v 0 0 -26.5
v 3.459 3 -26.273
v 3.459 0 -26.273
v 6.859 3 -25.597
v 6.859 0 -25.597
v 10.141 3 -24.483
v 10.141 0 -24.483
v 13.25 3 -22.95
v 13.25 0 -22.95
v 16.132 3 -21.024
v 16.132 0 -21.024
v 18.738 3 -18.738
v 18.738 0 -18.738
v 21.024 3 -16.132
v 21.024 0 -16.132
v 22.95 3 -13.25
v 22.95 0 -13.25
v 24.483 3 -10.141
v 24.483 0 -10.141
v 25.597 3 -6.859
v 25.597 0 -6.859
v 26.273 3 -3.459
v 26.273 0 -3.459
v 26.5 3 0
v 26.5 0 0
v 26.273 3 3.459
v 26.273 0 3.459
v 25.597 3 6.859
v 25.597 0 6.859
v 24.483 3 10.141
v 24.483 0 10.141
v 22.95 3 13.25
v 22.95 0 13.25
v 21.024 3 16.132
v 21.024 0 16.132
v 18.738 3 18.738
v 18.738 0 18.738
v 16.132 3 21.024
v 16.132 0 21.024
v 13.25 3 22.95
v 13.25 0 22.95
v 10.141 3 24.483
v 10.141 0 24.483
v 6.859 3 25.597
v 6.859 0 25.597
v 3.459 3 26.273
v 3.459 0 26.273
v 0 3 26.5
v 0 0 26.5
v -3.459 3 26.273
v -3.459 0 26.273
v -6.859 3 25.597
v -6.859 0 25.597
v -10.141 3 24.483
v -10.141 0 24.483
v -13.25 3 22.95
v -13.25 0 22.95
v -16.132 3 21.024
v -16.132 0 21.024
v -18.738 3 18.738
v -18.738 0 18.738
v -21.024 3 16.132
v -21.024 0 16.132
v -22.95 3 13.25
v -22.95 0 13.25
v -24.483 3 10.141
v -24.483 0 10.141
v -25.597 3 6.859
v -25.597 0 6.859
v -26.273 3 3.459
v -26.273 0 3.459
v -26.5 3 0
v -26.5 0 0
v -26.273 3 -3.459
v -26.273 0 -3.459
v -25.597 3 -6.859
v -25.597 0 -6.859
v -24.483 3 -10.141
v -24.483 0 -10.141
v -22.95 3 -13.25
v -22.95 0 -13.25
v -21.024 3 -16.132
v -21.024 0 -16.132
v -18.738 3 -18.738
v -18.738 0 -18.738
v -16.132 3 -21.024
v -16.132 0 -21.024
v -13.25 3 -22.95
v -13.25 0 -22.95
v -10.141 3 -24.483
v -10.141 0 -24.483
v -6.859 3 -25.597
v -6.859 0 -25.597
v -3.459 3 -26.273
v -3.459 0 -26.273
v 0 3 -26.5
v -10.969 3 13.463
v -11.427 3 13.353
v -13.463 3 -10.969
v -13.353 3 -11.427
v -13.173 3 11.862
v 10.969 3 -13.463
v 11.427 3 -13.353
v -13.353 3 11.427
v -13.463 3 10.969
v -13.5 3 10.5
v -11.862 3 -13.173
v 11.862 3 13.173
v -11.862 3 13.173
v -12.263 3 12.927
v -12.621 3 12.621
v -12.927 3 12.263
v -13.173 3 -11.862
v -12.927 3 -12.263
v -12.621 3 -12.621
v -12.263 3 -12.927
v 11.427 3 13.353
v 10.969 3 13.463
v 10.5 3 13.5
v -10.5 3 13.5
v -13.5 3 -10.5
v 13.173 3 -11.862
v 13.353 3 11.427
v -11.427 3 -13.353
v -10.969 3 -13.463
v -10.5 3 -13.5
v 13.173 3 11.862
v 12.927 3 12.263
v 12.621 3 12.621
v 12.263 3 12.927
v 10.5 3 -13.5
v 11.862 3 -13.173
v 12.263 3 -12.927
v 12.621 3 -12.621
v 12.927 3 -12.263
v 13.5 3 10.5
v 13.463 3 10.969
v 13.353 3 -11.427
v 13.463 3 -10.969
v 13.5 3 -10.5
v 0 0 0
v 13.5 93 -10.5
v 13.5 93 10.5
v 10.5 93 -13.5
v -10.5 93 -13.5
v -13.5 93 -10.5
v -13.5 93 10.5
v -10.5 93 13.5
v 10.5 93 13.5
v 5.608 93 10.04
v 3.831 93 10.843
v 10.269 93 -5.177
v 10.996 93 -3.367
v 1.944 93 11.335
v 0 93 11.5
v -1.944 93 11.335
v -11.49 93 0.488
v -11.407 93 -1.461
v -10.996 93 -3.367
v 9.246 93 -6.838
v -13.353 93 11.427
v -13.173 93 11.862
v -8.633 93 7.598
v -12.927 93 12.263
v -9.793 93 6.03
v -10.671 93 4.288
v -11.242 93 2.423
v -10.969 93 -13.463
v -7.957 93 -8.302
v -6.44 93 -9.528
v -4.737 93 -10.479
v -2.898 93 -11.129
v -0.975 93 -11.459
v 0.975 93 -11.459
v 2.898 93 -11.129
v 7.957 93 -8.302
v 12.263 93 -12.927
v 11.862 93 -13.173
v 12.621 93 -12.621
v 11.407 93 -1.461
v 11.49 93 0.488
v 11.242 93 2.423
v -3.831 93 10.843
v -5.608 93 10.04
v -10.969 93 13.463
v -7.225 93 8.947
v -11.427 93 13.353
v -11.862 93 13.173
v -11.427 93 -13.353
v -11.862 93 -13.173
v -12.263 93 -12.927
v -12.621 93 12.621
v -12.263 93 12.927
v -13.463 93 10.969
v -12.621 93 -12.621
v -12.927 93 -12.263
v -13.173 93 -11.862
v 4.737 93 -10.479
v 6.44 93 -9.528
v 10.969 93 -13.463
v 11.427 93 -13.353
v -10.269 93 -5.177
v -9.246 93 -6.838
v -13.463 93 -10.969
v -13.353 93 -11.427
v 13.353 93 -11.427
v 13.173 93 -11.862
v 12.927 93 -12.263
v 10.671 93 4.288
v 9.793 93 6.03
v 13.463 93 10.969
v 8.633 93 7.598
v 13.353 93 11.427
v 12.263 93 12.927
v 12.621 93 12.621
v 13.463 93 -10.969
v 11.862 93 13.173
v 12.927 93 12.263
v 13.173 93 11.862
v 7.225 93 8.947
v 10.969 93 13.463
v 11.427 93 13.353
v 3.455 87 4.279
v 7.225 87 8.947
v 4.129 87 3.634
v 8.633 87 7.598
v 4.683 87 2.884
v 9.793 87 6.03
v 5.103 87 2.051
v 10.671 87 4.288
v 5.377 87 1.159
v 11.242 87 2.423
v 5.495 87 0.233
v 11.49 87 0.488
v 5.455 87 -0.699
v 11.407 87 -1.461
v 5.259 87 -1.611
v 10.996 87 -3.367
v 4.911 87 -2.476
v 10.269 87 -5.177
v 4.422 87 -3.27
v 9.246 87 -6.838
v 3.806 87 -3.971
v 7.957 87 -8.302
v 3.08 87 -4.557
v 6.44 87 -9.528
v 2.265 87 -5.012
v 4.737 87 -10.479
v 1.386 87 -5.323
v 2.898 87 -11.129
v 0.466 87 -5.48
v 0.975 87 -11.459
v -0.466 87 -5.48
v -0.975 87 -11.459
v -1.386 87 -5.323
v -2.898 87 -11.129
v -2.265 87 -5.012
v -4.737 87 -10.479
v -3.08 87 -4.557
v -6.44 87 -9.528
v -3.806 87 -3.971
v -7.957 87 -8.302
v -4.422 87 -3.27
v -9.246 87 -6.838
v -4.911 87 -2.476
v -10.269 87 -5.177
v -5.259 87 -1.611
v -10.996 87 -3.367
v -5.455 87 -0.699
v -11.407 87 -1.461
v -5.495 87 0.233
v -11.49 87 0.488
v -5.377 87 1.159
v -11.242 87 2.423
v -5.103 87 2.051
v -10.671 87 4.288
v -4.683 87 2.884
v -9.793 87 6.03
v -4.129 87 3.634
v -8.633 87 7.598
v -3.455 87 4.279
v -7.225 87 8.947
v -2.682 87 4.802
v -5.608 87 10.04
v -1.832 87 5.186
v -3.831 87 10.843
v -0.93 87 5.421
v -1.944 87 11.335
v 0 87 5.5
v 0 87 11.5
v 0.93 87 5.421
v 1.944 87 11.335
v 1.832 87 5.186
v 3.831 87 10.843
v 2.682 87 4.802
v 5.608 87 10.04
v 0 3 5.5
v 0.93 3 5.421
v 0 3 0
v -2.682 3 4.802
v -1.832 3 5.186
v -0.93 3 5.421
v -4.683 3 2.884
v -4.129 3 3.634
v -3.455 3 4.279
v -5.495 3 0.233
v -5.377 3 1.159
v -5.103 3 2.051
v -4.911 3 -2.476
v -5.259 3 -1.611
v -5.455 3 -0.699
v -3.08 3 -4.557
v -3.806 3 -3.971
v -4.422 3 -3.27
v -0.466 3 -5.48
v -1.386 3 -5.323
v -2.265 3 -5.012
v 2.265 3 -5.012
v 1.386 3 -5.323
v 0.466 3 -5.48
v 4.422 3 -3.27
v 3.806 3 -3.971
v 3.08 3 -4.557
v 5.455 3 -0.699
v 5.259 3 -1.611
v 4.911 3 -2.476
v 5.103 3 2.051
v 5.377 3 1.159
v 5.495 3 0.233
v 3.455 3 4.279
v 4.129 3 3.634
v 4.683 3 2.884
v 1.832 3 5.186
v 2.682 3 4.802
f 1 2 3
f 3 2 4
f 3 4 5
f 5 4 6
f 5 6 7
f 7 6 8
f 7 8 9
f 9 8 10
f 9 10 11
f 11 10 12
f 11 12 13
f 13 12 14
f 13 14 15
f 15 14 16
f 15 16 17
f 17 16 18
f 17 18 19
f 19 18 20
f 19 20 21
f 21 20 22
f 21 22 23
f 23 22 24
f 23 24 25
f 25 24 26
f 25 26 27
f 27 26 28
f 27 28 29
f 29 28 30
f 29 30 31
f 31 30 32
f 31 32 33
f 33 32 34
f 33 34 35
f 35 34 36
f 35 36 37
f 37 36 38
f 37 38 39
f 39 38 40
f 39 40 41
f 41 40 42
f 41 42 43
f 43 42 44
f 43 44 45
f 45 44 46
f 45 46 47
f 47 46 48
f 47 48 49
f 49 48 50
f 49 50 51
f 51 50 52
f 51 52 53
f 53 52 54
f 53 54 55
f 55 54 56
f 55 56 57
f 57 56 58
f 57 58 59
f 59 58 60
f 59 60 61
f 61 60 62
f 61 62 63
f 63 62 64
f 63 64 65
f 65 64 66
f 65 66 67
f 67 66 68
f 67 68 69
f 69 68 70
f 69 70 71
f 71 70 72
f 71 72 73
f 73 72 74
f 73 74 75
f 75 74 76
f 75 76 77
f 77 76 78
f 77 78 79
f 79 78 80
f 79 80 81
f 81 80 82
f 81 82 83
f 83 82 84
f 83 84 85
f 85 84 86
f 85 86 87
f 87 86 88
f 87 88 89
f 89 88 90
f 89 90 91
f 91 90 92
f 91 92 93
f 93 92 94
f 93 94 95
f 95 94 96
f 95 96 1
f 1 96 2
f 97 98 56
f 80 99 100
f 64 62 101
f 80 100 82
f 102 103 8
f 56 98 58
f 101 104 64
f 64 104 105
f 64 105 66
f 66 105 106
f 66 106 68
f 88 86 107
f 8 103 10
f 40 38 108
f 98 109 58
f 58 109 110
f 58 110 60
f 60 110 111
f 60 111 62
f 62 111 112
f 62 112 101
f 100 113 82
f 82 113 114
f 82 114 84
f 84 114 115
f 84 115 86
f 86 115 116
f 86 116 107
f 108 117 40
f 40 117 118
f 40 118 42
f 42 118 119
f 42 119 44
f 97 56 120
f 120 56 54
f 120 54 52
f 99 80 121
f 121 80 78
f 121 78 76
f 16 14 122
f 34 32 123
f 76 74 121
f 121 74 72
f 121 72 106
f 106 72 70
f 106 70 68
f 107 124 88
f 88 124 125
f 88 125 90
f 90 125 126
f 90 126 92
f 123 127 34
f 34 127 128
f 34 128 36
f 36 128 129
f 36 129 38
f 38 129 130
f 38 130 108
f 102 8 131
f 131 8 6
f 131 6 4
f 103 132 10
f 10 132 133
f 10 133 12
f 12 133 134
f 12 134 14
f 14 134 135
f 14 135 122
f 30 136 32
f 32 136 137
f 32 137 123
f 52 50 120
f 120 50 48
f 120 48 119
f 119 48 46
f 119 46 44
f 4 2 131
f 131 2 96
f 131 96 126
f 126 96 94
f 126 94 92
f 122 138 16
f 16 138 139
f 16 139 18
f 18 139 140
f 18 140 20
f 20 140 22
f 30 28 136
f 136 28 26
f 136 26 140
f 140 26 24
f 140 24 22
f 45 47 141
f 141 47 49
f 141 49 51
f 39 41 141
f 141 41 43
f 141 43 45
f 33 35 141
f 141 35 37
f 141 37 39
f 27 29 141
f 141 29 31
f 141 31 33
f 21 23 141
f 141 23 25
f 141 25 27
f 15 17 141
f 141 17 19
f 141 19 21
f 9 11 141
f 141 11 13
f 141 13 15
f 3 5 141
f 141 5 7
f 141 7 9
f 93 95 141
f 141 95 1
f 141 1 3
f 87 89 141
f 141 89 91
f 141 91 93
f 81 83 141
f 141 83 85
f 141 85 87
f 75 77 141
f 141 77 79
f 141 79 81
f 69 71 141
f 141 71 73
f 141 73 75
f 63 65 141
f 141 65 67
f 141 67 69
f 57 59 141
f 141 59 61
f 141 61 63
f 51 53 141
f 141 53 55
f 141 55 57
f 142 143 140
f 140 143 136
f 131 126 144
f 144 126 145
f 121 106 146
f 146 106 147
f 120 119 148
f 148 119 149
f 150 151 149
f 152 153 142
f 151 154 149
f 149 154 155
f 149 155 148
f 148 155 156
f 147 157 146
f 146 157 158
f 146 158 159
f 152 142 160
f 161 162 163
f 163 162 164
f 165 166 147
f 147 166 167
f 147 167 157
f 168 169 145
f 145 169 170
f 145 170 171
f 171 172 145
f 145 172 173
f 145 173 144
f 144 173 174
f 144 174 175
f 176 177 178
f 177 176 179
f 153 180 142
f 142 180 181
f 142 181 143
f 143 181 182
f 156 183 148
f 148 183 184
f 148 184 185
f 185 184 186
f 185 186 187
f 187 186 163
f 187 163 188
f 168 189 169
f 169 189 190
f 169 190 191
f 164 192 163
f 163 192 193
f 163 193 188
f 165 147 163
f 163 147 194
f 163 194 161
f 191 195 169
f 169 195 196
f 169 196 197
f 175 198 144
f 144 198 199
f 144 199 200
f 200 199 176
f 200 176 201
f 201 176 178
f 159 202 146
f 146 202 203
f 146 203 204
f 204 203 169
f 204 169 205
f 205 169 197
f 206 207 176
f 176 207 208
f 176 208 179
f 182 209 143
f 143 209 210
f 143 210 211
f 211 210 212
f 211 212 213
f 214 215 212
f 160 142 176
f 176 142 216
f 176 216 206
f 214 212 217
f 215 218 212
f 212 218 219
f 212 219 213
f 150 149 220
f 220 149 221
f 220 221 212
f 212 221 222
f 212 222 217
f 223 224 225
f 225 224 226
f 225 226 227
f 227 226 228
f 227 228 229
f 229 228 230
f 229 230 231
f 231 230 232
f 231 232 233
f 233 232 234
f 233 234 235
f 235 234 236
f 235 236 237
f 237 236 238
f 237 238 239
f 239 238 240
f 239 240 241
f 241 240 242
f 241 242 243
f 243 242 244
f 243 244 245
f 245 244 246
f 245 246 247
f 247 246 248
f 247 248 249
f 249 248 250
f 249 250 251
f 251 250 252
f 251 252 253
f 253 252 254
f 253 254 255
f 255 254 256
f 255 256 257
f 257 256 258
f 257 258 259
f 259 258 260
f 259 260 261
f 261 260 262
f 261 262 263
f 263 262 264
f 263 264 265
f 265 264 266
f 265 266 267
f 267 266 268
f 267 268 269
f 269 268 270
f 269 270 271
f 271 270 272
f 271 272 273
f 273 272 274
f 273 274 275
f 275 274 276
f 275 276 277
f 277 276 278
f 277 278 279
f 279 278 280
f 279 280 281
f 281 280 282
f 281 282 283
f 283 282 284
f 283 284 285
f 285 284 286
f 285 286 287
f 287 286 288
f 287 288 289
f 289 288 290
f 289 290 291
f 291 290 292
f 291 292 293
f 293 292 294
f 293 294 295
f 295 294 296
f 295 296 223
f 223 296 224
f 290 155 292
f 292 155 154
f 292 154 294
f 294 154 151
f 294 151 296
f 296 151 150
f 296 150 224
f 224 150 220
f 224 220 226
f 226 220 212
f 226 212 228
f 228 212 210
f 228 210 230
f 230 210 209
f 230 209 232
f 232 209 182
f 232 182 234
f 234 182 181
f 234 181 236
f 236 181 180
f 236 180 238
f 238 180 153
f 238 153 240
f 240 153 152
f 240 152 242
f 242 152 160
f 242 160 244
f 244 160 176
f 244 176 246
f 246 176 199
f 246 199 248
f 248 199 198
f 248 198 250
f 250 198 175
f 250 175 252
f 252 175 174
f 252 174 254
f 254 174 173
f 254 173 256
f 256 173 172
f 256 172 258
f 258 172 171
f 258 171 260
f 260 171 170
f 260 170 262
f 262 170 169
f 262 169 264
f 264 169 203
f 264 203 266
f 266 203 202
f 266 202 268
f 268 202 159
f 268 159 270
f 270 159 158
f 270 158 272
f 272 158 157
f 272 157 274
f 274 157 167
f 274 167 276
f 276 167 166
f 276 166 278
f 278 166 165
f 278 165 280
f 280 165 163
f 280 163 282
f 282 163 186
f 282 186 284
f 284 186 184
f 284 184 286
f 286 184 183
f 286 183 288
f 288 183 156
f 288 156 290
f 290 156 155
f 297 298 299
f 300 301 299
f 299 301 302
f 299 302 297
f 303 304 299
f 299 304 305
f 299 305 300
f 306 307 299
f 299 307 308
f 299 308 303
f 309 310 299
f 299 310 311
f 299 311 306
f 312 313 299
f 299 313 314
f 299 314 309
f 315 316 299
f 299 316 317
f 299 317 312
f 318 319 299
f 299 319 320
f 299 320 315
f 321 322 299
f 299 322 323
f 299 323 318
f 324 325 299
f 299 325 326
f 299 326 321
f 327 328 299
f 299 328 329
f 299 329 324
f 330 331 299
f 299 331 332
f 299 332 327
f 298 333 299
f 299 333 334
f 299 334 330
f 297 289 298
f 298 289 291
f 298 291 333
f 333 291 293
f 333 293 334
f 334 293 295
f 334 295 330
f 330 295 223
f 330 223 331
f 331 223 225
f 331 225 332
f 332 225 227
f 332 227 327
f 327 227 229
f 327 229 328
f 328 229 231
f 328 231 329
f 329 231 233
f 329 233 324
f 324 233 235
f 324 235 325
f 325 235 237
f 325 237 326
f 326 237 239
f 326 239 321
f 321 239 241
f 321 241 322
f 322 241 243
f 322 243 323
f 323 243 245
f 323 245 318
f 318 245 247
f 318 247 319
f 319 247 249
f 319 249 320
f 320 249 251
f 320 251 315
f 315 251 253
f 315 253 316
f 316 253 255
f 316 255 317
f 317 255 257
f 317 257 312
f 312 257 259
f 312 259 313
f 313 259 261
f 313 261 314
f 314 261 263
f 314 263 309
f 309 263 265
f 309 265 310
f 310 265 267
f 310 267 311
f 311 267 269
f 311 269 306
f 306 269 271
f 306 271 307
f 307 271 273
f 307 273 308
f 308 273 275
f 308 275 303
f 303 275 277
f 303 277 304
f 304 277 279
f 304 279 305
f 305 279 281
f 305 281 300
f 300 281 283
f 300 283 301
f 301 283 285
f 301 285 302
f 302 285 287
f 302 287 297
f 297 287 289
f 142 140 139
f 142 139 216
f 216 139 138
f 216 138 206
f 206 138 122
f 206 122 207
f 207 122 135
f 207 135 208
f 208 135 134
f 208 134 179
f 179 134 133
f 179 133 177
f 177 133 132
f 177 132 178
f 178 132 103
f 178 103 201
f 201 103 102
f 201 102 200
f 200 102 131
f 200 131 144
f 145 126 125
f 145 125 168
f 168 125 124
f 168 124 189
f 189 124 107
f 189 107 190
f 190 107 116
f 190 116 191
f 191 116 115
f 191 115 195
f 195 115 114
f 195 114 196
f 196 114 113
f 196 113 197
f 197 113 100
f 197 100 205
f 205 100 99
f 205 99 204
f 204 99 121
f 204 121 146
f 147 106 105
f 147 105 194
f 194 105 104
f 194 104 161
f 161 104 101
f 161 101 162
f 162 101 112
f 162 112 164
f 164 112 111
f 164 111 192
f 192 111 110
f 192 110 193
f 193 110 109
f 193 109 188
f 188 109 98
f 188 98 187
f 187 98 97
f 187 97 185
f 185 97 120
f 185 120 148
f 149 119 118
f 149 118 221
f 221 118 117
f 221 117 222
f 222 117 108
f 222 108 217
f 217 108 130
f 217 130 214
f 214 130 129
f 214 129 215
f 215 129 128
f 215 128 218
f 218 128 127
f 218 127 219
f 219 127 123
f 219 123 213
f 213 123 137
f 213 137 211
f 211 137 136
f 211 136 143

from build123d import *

# Parameters (mm, degrees)
SKETCH1_R           = 26.5
BOSS_EXTRUDE1_DEPTH = 3
SKETCH10_W          = 27
SKETCH10_H          = 27
BOSS_EXTRUDE6_DEPTH = 90
SKETCH11_R          = 5.5
CUT_EXTRUDE3_DEPTH  = 90
SKETCH12_R          = 11.5
CUT_EXTRUDE4_DEPTH  = 6
FILLET2_R           = 3


with BuildPart() as part:
    # Sketch1 → Boss-Extrude1 (new body)
    with BuildSketch(Plane(origin=(0, 0, 0), x_dir=(1, 0, 0), z_dir=(0, 1, 0))):
        with Locations(Location((0, 0, 0), (0, 0, 270))):
            Circle(SKETCH1_R)
    extrude(amount=BOSS_EXTRUDE1_DEPTH)

    # Sketch10 → Boss-Extrude6 (add)
    with BuildSketch(Plane(origin=(0, 3, 0), x_dir=(1, 0, 0), z_dir=(0, 1, 0))):
        Rectangle(SKETCH10_W, SKETCH10_H)
    extrude(amount=BOSS_EXTRUDE6_DEPTH)

    # Sketch11 → Cut-Extrude3 (cut)
    with BuildSketch(Plane(origin=(0, 93, 0), x_dir=(1, 0, 0), z_dir=(0, 1, 0))):
        with Locations(Location((0, 0, 0), (0, 0, 270))):
            Circle(SKETCH11_R)
    extrude(amount=-CUT_EXTRUDE3_DEPTH, mode=Mode.SUBTRACT)

    # Sketch12 → Cut-Extrude4 (cut)
    with BuildSketch(Plane(origin=(0, 93, 0), x_dir=(1, 0, 0), z_dir=(0, 1, 0))):
        with Locations(Location((0, 0, 0), (0, 0, 270))):
            Circle(SKETCH12_R)
    extrude(amount=-CUT_EXTRUDE4_DEPTH, mode=Mode.SUBTRACT)

    # Fillet2
    fillet2_edges = [part.edges().sort_by_distance(p)[0] for p in [
        (13.5, 48, 13.5),
        (13.5, 48, -13.5),
        (-13.5, 48, -13.5),
        (-13.5, 48, 13.5),
    ]]
    fillet(fillet2_edges, radius=FILLET2_R)


solid = part.part
